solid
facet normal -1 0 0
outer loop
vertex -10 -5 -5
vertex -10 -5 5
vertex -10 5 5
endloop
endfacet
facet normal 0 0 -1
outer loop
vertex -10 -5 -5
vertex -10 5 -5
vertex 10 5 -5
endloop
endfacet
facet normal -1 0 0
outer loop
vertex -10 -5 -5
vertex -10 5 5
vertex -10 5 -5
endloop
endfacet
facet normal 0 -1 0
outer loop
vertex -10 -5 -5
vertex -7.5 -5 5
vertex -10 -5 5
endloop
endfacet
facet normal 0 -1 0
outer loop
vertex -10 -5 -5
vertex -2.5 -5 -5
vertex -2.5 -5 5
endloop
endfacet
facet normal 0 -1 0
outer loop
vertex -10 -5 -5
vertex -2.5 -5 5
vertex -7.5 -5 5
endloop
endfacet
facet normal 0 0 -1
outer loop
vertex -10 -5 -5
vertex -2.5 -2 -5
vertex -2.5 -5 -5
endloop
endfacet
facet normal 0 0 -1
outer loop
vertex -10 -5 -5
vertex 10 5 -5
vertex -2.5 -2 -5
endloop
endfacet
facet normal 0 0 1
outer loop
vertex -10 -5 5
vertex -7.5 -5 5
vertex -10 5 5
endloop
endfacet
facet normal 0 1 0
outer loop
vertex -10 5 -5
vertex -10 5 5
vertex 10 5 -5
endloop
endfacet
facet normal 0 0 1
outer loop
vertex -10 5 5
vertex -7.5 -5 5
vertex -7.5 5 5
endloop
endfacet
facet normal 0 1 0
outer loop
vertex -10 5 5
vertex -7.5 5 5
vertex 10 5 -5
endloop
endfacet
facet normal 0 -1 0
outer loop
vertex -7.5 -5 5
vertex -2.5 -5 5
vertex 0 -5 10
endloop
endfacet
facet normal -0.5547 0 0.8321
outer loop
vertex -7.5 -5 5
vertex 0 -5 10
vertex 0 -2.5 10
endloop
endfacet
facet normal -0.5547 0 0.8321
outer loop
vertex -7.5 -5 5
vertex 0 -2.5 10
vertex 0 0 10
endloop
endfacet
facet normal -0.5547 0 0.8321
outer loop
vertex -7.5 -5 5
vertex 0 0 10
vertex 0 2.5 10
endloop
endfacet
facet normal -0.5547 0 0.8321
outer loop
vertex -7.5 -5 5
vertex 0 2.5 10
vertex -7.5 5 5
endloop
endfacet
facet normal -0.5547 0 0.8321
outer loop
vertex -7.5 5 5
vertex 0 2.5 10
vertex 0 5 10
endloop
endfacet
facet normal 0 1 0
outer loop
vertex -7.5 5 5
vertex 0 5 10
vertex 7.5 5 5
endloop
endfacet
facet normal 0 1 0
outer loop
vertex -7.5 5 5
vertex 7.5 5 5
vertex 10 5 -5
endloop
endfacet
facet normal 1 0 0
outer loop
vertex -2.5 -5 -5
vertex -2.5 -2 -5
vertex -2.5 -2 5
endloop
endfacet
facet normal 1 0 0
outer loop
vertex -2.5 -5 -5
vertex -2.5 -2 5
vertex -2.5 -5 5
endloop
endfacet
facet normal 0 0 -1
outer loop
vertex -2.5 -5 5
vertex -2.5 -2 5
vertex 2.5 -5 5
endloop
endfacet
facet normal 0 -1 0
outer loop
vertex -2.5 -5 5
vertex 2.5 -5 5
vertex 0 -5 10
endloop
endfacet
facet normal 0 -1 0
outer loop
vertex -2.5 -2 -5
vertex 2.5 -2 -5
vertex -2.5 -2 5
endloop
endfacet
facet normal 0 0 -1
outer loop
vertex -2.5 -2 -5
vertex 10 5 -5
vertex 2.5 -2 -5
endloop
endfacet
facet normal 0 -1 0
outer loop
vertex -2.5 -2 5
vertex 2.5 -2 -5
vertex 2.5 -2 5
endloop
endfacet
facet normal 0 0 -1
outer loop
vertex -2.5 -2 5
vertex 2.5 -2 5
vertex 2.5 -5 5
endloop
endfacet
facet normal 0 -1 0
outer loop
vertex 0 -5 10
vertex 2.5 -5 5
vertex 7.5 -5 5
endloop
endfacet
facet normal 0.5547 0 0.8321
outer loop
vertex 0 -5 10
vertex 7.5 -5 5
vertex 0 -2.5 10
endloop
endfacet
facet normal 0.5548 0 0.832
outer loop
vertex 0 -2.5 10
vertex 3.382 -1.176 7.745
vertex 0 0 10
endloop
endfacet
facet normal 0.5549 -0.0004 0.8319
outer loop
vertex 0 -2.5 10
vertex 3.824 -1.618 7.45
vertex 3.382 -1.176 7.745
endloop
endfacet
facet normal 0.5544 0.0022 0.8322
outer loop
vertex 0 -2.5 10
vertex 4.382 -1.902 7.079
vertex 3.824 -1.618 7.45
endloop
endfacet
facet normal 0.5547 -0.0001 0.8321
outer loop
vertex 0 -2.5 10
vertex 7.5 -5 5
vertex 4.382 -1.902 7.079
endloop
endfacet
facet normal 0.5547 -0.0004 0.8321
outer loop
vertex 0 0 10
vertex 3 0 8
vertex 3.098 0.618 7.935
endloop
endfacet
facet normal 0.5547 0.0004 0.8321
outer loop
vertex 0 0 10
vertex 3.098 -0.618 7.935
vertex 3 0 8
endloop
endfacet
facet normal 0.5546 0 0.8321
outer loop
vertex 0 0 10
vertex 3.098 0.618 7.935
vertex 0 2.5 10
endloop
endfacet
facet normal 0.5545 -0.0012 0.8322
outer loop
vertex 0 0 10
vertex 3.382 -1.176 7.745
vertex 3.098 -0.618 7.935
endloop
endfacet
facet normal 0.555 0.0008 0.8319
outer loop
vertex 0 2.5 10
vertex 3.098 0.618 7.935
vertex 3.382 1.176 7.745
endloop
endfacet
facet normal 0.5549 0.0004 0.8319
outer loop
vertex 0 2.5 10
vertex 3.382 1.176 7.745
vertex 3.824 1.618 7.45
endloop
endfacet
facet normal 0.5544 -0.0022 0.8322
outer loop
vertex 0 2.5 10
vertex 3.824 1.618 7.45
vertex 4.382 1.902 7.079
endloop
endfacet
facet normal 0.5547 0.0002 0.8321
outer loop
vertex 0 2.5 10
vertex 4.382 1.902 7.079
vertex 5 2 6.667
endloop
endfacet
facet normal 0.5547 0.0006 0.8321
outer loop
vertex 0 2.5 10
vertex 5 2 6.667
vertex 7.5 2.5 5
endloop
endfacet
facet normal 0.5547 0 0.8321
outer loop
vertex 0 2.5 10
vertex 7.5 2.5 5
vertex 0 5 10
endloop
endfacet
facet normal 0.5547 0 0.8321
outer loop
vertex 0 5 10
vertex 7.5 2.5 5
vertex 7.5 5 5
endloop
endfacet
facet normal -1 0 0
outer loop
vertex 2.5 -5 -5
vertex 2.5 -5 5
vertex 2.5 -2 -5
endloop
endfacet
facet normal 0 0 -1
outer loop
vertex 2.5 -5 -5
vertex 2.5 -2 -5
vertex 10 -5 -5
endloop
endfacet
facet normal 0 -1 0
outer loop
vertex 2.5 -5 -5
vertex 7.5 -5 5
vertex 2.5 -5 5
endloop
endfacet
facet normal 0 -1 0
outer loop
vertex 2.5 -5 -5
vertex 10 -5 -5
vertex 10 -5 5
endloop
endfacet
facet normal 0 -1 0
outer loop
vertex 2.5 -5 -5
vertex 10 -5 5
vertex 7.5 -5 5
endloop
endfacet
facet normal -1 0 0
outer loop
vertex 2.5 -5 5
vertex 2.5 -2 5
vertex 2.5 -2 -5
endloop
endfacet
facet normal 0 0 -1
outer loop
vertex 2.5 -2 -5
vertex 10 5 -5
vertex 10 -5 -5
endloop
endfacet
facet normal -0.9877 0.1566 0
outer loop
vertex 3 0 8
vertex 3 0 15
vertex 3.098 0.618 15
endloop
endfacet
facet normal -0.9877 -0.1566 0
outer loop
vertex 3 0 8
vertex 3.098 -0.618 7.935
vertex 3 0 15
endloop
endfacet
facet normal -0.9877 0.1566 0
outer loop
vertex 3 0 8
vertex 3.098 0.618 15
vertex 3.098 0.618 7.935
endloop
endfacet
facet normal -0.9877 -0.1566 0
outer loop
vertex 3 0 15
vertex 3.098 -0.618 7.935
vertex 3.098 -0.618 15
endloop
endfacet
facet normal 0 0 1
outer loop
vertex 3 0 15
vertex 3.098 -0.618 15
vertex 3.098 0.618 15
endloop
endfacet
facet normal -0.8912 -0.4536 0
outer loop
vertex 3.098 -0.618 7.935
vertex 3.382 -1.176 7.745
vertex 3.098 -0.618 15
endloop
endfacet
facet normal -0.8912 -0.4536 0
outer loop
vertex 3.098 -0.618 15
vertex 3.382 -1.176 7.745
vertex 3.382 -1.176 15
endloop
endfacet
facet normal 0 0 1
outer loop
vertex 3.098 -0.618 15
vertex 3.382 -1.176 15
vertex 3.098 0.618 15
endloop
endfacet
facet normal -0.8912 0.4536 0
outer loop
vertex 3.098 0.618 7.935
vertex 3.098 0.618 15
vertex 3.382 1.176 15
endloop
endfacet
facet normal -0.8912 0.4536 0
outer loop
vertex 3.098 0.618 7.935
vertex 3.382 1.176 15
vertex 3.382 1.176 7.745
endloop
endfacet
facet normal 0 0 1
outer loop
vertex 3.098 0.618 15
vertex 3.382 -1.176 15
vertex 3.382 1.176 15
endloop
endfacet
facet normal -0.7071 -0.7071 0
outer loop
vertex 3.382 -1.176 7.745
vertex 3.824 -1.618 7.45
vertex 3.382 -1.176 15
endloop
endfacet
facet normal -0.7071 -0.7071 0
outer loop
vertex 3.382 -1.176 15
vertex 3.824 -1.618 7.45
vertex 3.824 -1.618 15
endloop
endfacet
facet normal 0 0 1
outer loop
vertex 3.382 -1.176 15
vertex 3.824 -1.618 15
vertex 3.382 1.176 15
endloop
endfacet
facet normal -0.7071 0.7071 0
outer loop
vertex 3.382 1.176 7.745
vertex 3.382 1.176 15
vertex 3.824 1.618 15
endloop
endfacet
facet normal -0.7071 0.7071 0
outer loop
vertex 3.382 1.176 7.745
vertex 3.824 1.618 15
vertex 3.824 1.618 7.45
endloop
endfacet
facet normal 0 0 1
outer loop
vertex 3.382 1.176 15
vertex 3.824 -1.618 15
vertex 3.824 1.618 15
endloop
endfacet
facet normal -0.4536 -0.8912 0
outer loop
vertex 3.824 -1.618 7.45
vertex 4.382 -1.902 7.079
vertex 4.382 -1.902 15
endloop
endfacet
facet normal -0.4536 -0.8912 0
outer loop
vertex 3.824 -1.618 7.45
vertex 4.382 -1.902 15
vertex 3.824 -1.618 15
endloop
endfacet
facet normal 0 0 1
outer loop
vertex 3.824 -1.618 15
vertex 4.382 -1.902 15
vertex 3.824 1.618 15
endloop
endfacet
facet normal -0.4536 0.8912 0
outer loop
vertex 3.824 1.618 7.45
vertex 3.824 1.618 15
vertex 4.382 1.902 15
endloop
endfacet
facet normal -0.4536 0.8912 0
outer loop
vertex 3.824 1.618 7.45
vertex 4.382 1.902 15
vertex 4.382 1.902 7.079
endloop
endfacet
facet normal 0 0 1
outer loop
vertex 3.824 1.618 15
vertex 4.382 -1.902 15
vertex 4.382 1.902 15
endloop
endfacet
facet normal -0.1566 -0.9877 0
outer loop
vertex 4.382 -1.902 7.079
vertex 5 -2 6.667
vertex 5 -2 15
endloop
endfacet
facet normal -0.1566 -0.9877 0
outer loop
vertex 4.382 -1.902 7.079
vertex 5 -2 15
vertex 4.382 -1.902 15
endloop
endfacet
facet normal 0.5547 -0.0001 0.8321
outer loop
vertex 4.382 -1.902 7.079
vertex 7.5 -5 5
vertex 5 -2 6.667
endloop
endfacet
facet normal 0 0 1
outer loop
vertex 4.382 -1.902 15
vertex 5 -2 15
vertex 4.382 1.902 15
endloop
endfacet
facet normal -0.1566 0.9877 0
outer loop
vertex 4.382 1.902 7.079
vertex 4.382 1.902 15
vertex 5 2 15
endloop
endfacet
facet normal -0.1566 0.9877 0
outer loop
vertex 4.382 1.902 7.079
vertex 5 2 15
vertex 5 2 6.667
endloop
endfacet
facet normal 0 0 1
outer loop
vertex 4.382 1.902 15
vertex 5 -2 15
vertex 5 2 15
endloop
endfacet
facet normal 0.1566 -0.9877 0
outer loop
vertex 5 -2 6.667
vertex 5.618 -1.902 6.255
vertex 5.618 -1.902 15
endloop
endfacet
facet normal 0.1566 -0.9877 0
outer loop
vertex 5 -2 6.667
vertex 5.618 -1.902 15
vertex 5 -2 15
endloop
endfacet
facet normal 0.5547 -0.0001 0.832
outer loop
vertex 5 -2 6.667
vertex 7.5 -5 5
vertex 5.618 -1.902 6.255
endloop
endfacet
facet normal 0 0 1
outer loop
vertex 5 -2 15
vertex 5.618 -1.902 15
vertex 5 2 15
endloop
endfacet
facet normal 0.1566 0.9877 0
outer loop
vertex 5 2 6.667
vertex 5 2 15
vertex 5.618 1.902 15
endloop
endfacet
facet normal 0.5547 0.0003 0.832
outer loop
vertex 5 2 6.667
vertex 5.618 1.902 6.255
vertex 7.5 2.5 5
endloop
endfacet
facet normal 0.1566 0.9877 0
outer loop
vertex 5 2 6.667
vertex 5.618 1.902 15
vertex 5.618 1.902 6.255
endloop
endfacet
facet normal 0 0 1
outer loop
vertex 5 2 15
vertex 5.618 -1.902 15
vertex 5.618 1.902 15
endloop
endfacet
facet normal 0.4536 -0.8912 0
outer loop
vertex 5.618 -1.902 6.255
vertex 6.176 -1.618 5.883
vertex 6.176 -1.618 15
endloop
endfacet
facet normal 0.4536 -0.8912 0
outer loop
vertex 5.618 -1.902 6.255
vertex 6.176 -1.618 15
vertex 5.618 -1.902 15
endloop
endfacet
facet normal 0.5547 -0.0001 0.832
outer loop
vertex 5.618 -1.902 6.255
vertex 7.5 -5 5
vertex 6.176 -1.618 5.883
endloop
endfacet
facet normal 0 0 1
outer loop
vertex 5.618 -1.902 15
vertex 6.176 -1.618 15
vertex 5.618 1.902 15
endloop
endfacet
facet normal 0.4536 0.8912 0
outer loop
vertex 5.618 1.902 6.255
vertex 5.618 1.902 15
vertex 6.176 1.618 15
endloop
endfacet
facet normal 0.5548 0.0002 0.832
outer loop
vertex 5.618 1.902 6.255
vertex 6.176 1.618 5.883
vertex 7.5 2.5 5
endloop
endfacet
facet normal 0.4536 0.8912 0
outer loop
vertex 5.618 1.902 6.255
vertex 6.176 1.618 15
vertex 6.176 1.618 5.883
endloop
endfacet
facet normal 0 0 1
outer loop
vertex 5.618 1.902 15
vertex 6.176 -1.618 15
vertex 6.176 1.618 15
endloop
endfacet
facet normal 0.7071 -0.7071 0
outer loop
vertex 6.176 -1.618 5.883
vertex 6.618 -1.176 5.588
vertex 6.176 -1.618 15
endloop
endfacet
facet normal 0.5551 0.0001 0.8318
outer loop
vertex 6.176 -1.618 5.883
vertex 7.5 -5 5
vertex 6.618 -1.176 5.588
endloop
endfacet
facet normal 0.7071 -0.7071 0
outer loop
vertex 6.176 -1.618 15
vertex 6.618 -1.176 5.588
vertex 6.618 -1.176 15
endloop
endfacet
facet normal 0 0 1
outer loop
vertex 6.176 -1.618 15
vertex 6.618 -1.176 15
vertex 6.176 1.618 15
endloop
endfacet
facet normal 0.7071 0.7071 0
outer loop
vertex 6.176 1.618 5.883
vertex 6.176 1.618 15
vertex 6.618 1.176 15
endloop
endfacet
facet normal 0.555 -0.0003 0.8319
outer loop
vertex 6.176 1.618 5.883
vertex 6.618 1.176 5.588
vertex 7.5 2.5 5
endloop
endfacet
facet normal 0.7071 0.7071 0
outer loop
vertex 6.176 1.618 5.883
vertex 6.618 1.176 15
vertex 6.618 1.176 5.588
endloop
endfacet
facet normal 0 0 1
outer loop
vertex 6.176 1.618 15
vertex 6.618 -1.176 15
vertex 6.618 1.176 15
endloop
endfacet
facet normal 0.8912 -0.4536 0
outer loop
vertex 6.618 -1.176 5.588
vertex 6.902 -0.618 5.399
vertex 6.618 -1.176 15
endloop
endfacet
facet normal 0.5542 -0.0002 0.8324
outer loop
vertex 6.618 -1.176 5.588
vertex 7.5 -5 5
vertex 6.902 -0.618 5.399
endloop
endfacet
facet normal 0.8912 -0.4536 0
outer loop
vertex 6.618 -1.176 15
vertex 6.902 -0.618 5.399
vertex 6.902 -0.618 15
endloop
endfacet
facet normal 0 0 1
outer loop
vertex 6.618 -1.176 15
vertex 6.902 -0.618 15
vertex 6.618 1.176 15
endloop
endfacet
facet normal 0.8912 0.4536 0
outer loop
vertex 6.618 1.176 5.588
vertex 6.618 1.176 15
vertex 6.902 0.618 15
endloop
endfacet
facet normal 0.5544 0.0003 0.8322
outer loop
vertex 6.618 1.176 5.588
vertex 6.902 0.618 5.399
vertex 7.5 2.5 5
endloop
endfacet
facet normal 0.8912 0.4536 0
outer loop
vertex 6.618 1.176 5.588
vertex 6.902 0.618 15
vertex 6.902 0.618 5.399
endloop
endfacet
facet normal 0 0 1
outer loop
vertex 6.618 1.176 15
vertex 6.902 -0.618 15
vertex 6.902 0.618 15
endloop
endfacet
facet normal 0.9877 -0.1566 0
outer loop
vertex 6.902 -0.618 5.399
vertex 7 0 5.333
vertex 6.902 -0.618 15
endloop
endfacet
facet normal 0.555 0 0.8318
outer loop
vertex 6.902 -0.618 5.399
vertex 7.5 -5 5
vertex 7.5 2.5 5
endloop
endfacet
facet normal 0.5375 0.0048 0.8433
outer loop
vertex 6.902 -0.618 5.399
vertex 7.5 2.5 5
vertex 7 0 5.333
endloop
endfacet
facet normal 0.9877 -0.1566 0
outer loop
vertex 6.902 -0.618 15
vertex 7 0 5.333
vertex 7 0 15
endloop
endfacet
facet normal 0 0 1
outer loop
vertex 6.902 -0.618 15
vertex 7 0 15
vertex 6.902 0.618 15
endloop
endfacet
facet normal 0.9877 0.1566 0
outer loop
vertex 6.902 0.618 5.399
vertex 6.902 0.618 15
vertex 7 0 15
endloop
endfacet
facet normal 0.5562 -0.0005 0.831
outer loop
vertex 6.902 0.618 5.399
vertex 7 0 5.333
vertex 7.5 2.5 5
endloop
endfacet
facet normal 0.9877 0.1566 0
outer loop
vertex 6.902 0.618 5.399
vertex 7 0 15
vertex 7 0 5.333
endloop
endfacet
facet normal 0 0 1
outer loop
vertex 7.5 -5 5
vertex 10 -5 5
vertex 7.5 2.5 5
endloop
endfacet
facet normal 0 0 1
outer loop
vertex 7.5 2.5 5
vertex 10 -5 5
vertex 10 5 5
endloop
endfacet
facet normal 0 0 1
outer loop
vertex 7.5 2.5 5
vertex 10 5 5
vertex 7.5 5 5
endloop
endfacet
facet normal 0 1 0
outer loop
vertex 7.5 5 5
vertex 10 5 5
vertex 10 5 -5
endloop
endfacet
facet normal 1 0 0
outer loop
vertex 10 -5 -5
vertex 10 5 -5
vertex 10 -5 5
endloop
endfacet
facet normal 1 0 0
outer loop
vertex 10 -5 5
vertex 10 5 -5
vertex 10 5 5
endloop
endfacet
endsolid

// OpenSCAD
// Start: lazy_union
default_5_default_5();
// End: lazy_union

// Modules.

// 'PartMaterial undef-default - default 5.0'
module default_5_default_5() {
  // 'None : _combine_solids_and_holes'
  union() {
    // '_combine_solids_and_holes'
    difference() {
      // 'default : _combine_solids_and_holes'
      union() {
        // 'base'
        multmatrix(m=[[1.0, 0.0, 0.0, -10.0], [0.0, 1.0, 0.0, -5.0], [0.0, 0.0, 1.0, -5.0], [0.0, 0.0, 0.0, 1.0]]) {
          // 'base'
          color(c=[1.0, 1.0, 0.0, 0.5]) {
            // 'base : _combine_solids_and_holes'
            union() {
              // 'base'
              cube(size=[20.0, 10.0, 10.0]);
            }
          }
        }
        // 'roof'
        multmatrix(m=[[-1.0, 0.0, 0.0, 0.0], [0.0, 0.0, 1.0, -5.0], [0.0, 1.0, 0.0, 5.0], [0.0, 0.0, 0.0, 1.0]]) {
          // 'roof : _combine_solids_and_holes'
          union() {
            // 'roof'
            linear_extrude(height=10.0, twist=0.0, slices=4, scale=[1.0, 1.0]) {
              polygon(points=[[0.0, 0.0], [-7.5, 0.0], [0.0, 5.0], [7.5, 0.0]]);
            }
          }
        }
        // 'chimney'
        multmatrix(m=[[0.0, -1.0, 0.0, 5.0], [1.0, 0.0, 0.0, 0.0], [0.0, 0.0, 1.0, 5.0], [0.0, 0.0, 0.0, 1.0]]) {
          // 'chimney'
          color(c=[0.0, 0.0, 0.0, 0.5]) {
            // 'chimney : _combine_solids_and_holes'
            union() {
              // 'chimney'
              cylinder(h=10.0, r1=2.0, r2=2.0, center=false, $fn=20);
            }
          }
        }
      }
      // 'default'
      multmatrix(m=[[1.0, 0.0, 0.0, -2.5], [0.0, 1.0, 0.0, -5.0], [0.0, 0.0, 1.0, -5.0], [0.0, 0.0, 0.0, 1.0]]) {
        // 'door'
        color(c=[1.0, 0.0, 0.0, 0.5]) {
          // 'door : _combine_solids_and_holes'
          union() {
            // 'door'
            cube(size=[5.0, 3.0, 10.0]);
          }
        }
      }
    }
  }
} // end module default_5_default_5
